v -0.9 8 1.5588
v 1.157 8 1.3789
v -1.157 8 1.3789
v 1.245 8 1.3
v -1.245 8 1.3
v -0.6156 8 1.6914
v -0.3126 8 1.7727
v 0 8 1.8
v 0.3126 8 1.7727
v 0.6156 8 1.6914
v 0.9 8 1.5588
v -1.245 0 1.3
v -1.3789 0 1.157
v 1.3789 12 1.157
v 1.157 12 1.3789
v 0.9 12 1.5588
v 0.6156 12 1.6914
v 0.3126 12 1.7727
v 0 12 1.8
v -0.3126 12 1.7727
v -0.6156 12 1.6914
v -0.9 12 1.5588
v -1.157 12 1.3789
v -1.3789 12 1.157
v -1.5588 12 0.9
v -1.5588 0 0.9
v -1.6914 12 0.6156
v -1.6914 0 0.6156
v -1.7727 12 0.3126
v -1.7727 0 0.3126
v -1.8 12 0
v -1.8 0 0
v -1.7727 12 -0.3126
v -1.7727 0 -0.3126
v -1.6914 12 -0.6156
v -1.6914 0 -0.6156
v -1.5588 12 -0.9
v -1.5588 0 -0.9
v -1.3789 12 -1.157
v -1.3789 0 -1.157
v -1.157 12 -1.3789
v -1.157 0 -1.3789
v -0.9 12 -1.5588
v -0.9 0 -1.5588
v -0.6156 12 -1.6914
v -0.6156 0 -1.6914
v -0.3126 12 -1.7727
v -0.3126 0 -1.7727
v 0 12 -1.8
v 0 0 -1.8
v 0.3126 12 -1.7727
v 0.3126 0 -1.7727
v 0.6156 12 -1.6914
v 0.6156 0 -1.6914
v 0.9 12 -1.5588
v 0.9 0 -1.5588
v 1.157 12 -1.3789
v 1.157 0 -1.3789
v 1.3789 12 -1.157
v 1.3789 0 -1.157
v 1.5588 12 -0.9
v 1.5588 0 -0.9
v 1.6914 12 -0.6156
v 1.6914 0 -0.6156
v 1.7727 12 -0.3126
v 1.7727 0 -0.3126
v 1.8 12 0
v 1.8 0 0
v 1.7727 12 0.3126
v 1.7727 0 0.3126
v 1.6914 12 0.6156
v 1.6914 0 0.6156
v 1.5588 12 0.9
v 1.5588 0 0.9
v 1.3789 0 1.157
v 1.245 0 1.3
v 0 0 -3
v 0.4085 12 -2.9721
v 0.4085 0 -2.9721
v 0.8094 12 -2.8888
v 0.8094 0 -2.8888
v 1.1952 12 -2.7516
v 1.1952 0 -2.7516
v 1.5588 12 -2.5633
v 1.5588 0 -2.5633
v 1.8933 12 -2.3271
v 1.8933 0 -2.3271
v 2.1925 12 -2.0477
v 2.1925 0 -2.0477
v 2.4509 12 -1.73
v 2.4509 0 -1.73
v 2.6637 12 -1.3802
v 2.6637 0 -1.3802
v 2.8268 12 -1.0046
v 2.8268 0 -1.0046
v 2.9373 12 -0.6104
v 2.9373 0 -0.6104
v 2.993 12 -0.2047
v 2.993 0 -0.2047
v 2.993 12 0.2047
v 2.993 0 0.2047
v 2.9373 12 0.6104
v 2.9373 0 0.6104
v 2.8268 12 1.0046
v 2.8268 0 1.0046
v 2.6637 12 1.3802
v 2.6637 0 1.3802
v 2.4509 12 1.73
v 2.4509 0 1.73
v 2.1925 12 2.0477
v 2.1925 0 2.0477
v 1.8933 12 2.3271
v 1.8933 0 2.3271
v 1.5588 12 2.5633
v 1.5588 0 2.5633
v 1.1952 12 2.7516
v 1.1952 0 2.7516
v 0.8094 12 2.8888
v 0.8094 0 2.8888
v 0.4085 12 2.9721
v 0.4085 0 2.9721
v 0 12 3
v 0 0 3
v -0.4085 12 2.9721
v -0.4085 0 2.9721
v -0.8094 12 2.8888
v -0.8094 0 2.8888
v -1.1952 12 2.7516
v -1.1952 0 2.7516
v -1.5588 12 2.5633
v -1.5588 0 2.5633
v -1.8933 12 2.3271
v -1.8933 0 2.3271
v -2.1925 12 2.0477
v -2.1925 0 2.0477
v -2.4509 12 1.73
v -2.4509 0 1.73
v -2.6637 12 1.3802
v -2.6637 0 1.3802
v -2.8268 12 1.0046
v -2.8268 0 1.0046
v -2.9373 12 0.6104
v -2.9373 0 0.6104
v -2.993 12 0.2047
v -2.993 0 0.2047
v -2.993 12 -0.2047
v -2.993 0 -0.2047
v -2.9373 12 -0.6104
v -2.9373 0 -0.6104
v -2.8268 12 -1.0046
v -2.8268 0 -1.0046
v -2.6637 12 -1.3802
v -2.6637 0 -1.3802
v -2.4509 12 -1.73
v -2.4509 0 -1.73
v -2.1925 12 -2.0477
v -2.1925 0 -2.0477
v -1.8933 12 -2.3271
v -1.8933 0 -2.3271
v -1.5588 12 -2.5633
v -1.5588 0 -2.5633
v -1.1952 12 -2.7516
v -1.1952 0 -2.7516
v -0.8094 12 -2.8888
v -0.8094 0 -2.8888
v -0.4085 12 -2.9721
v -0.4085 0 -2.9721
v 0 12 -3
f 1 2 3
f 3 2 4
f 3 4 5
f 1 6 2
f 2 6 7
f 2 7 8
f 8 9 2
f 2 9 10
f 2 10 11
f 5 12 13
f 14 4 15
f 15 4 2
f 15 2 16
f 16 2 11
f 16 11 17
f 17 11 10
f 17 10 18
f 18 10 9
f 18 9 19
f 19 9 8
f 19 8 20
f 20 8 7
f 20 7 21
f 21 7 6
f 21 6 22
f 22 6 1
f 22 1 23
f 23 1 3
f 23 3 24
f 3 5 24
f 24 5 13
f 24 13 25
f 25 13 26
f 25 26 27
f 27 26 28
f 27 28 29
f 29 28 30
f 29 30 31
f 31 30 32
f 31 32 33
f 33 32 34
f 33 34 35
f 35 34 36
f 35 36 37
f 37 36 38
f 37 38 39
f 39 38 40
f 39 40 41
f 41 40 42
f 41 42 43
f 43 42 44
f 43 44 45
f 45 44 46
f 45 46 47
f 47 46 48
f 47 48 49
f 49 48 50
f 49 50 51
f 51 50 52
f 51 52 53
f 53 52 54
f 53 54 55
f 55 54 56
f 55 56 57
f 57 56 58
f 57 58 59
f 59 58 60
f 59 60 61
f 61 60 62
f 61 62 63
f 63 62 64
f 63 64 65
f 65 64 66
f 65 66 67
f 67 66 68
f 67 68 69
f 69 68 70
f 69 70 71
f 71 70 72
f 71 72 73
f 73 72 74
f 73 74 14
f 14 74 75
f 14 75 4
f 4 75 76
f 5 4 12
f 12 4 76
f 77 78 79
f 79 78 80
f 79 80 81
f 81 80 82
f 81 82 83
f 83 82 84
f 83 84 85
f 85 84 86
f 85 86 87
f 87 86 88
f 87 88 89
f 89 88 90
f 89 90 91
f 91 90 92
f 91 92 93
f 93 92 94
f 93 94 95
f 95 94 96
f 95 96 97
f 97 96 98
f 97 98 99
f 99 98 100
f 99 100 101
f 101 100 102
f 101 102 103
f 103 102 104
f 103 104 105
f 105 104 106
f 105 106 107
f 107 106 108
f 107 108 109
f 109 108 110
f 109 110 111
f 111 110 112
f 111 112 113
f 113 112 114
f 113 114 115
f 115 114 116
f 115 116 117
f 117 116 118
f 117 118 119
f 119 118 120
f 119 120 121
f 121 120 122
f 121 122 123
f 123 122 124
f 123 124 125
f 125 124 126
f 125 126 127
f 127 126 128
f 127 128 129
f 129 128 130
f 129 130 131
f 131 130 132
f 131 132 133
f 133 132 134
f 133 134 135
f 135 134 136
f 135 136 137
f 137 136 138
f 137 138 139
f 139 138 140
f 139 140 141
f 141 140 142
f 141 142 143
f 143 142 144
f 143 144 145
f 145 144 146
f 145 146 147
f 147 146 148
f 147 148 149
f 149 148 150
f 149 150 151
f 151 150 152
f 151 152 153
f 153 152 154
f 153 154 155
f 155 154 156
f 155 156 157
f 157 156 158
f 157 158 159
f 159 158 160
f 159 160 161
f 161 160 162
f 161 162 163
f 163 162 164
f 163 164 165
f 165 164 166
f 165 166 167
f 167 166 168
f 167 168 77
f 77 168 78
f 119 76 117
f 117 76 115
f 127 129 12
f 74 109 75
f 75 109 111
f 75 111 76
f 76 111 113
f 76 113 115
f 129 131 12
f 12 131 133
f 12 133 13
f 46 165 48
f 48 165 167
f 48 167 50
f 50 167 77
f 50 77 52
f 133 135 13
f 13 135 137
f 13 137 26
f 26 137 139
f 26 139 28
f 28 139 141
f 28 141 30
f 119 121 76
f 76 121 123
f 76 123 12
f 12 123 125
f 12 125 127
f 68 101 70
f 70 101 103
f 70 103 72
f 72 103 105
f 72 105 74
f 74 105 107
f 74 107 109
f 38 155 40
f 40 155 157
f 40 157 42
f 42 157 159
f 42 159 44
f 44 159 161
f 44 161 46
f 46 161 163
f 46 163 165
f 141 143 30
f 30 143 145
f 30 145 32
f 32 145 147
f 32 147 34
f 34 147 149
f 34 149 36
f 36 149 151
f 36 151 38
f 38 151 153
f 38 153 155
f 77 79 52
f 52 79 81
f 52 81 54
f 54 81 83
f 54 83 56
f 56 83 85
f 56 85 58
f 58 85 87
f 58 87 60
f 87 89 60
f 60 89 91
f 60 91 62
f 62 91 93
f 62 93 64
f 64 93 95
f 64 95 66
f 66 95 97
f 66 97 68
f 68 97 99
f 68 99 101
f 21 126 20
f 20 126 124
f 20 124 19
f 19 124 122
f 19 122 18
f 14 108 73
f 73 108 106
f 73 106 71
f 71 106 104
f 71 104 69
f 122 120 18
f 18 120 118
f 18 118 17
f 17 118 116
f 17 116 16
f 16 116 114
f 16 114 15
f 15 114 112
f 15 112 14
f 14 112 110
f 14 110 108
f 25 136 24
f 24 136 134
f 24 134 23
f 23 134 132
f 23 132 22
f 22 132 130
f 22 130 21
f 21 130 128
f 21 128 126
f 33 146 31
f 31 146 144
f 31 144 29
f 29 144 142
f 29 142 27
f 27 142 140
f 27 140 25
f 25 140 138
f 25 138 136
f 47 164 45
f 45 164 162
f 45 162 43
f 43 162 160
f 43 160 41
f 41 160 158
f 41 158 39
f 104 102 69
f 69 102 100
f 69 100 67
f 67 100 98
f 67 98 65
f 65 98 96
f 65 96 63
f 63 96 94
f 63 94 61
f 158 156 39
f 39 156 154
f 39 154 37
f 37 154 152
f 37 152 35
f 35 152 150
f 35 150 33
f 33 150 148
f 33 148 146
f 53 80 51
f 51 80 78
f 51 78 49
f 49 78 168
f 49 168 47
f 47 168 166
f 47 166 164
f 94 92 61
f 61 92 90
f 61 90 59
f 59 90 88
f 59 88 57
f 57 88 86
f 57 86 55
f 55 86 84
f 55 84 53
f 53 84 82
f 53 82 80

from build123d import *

# Parameters (mm, degrees)
SKETCH_1_R      = 3
EXTRUDE_1_DEPTH = 8
SKETCH_2_R      = 3
SKETCH_2_R_2    = 1.8
EXTRUDE_2_DEPTH = 4


with BuildPart() as part:
    # 草图1 → 凸台-拉伸1 (new body)
    with BuildSketch(Plane(origin=(0, 0, 0), x_dir=(1, 0, 0), z_dir=(0, 1, 0))):
        Circle(SKETCH_1_R)
        with BuildLine():
            ThreePointArc((1.24498996, -1.3), (0, 1.8), (-1.24498996, -1.3))
            Line((-1.24498996, -1.3), (1.24498996, -1.3))
        make_face(mode=Mode.SUBTRACT)
    extrude(amount=EXTRUDE_1_DEPTH)

    # 草图2 → 凸台-拉伸2 (add)
    with BuildSketch(Plane(origin=(0, 8, 0), x_dir=(1, 0, 0), z_dir=(0, 1, 0))):
        Circle(SKETCH_2_R)
        Circle(SKETCH_2_R_2, mode=Mode.SUBTRACT)
    extrude(amount=EXTRUDE_2_DEPTH)


solid = part.part
